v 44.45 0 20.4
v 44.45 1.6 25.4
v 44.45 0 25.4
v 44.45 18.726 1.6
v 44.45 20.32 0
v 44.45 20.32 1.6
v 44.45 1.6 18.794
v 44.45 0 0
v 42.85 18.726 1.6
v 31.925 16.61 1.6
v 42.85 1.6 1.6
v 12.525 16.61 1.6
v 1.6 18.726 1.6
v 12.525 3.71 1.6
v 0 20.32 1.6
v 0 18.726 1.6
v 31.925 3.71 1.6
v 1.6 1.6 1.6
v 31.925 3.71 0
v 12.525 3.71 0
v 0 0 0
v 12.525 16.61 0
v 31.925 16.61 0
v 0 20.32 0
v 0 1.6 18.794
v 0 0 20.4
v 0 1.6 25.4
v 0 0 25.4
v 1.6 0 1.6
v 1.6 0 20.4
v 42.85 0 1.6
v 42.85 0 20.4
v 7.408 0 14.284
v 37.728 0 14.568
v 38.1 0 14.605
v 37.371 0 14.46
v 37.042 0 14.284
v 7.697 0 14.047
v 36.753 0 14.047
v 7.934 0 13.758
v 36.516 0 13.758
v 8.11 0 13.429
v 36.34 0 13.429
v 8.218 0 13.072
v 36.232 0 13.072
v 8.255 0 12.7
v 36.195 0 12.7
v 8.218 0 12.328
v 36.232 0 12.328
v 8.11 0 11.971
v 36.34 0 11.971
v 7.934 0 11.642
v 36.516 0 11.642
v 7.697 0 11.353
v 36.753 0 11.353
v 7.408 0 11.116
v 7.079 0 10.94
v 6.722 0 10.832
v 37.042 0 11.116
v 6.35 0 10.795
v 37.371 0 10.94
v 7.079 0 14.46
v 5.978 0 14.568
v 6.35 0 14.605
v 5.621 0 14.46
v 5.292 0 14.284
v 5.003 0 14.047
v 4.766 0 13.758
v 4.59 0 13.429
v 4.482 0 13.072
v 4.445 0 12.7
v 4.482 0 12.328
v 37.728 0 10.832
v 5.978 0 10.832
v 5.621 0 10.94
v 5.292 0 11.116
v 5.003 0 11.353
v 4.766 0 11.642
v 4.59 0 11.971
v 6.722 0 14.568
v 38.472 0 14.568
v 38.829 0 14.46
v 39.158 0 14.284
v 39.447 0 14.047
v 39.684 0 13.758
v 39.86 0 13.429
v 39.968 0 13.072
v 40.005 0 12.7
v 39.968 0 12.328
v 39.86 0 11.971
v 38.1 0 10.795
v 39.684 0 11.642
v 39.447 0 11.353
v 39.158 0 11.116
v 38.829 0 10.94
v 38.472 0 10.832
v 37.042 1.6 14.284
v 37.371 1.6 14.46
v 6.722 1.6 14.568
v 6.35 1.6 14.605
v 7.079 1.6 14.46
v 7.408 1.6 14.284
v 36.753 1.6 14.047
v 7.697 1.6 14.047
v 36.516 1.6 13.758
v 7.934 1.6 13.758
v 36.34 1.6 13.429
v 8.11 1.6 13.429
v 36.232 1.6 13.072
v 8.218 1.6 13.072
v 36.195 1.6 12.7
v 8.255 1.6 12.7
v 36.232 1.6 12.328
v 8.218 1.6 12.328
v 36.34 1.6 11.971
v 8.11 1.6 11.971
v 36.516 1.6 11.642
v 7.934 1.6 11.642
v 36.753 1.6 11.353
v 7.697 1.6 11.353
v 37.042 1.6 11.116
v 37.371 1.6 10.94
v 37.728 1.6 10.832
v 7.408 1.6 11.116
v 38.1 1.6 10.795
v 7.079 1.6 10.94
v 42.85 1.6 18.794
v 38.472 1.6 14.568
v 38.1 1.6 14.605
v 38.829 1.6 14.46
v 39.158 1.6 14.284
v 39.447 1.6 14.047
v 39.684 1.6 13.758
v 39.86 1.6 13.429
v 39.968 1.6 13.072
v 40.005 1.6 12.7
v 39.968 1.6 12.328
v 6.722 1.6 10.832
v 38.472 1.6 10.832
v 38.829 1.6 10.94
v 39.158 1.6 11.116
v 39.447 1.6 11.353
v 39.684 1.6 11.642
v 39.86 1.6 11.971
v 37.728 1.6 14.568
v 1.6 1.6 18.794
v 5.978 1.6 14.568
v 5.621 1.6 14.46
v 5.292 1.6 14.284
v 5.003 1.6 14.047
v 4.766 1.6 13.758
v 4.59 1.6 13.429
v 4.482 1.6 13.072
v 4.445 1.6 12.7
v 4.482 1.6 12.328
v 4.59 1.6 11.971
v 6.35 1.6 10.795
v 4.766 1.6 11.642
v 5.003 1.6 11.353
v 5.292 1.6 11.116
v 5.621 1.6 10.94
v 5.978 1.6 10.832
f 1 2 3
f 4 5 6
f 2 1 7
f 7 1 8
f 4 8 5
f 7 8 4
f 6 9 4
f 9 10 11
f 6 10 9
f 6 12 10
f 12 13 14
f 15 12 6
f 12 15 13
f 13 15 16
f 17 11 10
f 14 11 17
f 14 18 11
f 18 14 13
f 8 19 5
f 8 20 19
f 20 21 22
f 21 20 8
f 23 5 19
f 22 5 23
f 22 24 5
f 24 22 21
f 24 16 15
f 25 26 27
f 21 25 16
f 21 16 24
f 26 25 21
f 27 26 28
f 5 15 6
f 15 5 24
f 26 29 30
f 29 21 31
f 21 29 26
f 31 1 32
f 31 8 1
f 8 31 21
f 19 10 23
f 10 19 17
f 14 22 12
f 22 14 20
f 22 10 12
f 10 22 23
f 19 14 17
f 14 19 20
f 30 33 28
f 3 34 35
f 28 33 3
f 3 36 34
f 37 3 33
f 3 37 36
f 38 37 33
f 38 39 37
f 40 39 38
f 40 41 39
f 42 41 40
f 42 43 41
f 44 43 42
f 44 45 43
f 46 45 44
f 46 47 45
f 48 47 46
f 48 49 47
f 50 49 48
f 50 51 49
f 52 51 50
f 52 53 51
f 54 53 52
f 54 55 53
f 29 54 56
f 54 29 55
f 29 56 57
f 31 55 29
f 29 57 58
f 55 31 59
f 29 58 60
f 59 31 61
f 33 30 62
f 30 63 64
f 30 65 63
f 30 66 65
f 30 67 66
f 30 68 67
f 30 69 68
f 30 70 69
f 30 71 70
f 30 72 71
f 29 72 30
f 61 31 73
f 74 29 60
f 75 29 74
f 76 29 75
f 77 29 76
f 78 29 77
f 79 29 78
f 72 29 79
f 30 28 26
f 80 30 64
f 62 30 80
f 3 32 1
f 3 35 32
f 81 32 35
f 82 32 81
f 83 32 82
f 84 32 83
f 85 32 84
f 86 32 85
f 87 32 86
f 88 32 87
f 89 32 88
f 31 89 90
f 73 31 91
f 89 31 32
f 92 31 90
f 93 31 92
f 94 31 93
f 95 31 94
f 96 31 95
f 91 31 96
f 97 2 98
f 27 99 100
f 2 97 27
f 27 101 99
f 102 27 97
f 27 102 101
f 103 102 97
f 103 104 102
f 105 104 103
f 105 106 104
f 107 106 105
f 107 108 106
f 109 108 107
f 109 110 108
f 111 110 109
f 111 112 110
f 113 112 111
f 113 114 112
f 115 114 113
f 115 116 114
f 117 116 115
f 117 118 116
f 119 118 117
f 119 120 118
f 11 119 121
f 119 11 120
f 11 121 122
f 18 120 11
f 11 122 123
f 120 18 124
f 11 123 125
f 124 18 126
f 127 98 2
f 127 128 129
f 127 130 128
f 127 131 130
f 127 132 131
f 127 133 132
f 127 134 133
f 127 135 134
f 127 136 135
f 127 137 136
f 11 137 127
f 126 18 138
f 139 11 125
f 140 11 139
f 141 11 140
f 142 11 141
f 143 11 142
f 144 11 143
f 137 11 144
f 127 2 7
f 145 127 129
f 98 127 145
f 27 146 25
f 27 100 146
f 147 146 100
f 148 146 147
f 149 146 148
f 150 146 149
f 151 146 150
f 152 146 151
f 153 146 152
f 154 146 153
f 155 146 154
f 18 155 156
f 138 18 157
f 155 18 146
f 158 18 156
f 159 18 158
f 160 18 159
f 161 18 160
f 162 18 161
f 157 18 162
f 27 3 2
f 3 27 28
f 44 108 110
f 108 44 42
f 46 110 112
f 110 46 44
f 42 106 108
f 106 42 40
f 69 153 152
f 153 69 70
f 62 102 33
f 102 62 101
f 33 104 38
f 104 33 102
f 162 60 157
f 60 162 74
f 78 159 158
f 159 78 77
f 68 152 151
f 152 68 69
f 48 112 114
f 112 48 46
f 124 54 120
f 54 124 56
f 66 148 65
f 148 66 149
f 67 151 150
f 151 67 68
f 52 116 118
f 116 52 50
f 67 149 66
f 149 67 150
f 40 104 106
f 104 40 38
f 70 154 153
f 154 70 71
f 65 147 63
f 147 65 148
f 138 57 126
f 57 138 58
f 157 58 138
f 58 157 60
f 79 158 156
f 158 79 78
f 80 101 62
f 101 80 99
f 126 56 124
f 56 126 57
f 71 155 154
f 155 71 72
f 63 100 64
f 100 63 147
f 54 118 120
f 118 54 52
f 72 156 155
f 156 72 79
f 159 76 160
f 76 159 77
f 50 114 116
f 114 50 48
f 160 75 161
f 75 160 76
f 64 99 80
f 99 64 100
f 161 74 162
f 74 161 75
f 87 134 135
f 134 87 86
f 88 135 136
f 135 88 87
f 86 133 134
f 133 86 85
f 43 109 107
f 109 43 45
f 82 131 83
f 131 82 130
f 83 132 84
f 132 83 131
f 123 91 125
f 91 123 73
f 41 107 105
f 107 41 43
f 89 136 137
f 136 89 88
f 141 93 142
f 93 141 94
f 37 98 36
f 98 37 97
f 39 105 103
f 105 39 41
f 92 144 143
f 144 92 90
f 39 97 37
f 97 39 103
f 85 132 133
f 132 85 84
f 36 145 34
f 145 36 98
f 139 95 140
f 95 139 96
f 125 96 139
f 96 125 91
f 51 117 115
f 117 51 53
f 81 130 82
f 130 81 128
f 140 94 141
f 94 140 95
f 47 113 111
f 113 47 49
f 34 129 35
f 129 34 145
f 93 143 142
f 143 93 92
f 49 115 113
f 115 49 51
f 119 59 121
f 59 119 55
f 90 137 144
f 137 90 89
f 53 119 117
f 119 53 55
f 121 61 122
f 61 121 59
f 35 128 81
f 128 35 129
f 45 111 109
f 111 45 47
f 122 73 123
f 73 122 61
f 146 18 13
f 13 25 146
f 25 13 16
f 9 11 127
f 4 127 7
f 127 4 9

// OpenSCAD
$fn=32;
e=0.1;

function mm(x)=x*25.4;

sw_wid = 21;
sw_len = 15;

co_wid = 19.4;
co_len = 12.9;

thk = 1.6;

b_wid = mm(1.75);
b_len = mm(0.8);
b_hgt = mm(1);

hole_dia = mm(0.15);
hole_off = mm(0.25);

module side() {
     linear_extrude( height=thk) {
	  polygon( points = [[0,0], [b_hgt-5,0], [0, b_len]]);
     }
}

module bracket() {
     difference() {
	  cube( [b_wid, b_len, thk]);
	  translate( [(b_wid-co_wid)/2, (b_len-co_len)/2, -e])
	       cube( [co_wid, co_len, thk+2*e]);
     }
     rotate( [90, 0, 0]) {
	  translate( [0, 0, -thk])
	  difference() {
	       cube( [b_wid, b_hgt, thk]);
	       translate( [ hole_off, b_hgt/2, -e])
		    cylinder( h=thk+2*e, d=hole_dia);
	       translate( [ b_wid-hole_off, b_hgt/2, -e])
		    cylinder( h=thk+2*e, d=hole_dia);
	  }
     }
     rotate( [0, -90, 0]) {
	  translate( [0, 0, -thk]) side();
	  translate( [0, 0, -b_wid]) side();
     }
}

bracket();
